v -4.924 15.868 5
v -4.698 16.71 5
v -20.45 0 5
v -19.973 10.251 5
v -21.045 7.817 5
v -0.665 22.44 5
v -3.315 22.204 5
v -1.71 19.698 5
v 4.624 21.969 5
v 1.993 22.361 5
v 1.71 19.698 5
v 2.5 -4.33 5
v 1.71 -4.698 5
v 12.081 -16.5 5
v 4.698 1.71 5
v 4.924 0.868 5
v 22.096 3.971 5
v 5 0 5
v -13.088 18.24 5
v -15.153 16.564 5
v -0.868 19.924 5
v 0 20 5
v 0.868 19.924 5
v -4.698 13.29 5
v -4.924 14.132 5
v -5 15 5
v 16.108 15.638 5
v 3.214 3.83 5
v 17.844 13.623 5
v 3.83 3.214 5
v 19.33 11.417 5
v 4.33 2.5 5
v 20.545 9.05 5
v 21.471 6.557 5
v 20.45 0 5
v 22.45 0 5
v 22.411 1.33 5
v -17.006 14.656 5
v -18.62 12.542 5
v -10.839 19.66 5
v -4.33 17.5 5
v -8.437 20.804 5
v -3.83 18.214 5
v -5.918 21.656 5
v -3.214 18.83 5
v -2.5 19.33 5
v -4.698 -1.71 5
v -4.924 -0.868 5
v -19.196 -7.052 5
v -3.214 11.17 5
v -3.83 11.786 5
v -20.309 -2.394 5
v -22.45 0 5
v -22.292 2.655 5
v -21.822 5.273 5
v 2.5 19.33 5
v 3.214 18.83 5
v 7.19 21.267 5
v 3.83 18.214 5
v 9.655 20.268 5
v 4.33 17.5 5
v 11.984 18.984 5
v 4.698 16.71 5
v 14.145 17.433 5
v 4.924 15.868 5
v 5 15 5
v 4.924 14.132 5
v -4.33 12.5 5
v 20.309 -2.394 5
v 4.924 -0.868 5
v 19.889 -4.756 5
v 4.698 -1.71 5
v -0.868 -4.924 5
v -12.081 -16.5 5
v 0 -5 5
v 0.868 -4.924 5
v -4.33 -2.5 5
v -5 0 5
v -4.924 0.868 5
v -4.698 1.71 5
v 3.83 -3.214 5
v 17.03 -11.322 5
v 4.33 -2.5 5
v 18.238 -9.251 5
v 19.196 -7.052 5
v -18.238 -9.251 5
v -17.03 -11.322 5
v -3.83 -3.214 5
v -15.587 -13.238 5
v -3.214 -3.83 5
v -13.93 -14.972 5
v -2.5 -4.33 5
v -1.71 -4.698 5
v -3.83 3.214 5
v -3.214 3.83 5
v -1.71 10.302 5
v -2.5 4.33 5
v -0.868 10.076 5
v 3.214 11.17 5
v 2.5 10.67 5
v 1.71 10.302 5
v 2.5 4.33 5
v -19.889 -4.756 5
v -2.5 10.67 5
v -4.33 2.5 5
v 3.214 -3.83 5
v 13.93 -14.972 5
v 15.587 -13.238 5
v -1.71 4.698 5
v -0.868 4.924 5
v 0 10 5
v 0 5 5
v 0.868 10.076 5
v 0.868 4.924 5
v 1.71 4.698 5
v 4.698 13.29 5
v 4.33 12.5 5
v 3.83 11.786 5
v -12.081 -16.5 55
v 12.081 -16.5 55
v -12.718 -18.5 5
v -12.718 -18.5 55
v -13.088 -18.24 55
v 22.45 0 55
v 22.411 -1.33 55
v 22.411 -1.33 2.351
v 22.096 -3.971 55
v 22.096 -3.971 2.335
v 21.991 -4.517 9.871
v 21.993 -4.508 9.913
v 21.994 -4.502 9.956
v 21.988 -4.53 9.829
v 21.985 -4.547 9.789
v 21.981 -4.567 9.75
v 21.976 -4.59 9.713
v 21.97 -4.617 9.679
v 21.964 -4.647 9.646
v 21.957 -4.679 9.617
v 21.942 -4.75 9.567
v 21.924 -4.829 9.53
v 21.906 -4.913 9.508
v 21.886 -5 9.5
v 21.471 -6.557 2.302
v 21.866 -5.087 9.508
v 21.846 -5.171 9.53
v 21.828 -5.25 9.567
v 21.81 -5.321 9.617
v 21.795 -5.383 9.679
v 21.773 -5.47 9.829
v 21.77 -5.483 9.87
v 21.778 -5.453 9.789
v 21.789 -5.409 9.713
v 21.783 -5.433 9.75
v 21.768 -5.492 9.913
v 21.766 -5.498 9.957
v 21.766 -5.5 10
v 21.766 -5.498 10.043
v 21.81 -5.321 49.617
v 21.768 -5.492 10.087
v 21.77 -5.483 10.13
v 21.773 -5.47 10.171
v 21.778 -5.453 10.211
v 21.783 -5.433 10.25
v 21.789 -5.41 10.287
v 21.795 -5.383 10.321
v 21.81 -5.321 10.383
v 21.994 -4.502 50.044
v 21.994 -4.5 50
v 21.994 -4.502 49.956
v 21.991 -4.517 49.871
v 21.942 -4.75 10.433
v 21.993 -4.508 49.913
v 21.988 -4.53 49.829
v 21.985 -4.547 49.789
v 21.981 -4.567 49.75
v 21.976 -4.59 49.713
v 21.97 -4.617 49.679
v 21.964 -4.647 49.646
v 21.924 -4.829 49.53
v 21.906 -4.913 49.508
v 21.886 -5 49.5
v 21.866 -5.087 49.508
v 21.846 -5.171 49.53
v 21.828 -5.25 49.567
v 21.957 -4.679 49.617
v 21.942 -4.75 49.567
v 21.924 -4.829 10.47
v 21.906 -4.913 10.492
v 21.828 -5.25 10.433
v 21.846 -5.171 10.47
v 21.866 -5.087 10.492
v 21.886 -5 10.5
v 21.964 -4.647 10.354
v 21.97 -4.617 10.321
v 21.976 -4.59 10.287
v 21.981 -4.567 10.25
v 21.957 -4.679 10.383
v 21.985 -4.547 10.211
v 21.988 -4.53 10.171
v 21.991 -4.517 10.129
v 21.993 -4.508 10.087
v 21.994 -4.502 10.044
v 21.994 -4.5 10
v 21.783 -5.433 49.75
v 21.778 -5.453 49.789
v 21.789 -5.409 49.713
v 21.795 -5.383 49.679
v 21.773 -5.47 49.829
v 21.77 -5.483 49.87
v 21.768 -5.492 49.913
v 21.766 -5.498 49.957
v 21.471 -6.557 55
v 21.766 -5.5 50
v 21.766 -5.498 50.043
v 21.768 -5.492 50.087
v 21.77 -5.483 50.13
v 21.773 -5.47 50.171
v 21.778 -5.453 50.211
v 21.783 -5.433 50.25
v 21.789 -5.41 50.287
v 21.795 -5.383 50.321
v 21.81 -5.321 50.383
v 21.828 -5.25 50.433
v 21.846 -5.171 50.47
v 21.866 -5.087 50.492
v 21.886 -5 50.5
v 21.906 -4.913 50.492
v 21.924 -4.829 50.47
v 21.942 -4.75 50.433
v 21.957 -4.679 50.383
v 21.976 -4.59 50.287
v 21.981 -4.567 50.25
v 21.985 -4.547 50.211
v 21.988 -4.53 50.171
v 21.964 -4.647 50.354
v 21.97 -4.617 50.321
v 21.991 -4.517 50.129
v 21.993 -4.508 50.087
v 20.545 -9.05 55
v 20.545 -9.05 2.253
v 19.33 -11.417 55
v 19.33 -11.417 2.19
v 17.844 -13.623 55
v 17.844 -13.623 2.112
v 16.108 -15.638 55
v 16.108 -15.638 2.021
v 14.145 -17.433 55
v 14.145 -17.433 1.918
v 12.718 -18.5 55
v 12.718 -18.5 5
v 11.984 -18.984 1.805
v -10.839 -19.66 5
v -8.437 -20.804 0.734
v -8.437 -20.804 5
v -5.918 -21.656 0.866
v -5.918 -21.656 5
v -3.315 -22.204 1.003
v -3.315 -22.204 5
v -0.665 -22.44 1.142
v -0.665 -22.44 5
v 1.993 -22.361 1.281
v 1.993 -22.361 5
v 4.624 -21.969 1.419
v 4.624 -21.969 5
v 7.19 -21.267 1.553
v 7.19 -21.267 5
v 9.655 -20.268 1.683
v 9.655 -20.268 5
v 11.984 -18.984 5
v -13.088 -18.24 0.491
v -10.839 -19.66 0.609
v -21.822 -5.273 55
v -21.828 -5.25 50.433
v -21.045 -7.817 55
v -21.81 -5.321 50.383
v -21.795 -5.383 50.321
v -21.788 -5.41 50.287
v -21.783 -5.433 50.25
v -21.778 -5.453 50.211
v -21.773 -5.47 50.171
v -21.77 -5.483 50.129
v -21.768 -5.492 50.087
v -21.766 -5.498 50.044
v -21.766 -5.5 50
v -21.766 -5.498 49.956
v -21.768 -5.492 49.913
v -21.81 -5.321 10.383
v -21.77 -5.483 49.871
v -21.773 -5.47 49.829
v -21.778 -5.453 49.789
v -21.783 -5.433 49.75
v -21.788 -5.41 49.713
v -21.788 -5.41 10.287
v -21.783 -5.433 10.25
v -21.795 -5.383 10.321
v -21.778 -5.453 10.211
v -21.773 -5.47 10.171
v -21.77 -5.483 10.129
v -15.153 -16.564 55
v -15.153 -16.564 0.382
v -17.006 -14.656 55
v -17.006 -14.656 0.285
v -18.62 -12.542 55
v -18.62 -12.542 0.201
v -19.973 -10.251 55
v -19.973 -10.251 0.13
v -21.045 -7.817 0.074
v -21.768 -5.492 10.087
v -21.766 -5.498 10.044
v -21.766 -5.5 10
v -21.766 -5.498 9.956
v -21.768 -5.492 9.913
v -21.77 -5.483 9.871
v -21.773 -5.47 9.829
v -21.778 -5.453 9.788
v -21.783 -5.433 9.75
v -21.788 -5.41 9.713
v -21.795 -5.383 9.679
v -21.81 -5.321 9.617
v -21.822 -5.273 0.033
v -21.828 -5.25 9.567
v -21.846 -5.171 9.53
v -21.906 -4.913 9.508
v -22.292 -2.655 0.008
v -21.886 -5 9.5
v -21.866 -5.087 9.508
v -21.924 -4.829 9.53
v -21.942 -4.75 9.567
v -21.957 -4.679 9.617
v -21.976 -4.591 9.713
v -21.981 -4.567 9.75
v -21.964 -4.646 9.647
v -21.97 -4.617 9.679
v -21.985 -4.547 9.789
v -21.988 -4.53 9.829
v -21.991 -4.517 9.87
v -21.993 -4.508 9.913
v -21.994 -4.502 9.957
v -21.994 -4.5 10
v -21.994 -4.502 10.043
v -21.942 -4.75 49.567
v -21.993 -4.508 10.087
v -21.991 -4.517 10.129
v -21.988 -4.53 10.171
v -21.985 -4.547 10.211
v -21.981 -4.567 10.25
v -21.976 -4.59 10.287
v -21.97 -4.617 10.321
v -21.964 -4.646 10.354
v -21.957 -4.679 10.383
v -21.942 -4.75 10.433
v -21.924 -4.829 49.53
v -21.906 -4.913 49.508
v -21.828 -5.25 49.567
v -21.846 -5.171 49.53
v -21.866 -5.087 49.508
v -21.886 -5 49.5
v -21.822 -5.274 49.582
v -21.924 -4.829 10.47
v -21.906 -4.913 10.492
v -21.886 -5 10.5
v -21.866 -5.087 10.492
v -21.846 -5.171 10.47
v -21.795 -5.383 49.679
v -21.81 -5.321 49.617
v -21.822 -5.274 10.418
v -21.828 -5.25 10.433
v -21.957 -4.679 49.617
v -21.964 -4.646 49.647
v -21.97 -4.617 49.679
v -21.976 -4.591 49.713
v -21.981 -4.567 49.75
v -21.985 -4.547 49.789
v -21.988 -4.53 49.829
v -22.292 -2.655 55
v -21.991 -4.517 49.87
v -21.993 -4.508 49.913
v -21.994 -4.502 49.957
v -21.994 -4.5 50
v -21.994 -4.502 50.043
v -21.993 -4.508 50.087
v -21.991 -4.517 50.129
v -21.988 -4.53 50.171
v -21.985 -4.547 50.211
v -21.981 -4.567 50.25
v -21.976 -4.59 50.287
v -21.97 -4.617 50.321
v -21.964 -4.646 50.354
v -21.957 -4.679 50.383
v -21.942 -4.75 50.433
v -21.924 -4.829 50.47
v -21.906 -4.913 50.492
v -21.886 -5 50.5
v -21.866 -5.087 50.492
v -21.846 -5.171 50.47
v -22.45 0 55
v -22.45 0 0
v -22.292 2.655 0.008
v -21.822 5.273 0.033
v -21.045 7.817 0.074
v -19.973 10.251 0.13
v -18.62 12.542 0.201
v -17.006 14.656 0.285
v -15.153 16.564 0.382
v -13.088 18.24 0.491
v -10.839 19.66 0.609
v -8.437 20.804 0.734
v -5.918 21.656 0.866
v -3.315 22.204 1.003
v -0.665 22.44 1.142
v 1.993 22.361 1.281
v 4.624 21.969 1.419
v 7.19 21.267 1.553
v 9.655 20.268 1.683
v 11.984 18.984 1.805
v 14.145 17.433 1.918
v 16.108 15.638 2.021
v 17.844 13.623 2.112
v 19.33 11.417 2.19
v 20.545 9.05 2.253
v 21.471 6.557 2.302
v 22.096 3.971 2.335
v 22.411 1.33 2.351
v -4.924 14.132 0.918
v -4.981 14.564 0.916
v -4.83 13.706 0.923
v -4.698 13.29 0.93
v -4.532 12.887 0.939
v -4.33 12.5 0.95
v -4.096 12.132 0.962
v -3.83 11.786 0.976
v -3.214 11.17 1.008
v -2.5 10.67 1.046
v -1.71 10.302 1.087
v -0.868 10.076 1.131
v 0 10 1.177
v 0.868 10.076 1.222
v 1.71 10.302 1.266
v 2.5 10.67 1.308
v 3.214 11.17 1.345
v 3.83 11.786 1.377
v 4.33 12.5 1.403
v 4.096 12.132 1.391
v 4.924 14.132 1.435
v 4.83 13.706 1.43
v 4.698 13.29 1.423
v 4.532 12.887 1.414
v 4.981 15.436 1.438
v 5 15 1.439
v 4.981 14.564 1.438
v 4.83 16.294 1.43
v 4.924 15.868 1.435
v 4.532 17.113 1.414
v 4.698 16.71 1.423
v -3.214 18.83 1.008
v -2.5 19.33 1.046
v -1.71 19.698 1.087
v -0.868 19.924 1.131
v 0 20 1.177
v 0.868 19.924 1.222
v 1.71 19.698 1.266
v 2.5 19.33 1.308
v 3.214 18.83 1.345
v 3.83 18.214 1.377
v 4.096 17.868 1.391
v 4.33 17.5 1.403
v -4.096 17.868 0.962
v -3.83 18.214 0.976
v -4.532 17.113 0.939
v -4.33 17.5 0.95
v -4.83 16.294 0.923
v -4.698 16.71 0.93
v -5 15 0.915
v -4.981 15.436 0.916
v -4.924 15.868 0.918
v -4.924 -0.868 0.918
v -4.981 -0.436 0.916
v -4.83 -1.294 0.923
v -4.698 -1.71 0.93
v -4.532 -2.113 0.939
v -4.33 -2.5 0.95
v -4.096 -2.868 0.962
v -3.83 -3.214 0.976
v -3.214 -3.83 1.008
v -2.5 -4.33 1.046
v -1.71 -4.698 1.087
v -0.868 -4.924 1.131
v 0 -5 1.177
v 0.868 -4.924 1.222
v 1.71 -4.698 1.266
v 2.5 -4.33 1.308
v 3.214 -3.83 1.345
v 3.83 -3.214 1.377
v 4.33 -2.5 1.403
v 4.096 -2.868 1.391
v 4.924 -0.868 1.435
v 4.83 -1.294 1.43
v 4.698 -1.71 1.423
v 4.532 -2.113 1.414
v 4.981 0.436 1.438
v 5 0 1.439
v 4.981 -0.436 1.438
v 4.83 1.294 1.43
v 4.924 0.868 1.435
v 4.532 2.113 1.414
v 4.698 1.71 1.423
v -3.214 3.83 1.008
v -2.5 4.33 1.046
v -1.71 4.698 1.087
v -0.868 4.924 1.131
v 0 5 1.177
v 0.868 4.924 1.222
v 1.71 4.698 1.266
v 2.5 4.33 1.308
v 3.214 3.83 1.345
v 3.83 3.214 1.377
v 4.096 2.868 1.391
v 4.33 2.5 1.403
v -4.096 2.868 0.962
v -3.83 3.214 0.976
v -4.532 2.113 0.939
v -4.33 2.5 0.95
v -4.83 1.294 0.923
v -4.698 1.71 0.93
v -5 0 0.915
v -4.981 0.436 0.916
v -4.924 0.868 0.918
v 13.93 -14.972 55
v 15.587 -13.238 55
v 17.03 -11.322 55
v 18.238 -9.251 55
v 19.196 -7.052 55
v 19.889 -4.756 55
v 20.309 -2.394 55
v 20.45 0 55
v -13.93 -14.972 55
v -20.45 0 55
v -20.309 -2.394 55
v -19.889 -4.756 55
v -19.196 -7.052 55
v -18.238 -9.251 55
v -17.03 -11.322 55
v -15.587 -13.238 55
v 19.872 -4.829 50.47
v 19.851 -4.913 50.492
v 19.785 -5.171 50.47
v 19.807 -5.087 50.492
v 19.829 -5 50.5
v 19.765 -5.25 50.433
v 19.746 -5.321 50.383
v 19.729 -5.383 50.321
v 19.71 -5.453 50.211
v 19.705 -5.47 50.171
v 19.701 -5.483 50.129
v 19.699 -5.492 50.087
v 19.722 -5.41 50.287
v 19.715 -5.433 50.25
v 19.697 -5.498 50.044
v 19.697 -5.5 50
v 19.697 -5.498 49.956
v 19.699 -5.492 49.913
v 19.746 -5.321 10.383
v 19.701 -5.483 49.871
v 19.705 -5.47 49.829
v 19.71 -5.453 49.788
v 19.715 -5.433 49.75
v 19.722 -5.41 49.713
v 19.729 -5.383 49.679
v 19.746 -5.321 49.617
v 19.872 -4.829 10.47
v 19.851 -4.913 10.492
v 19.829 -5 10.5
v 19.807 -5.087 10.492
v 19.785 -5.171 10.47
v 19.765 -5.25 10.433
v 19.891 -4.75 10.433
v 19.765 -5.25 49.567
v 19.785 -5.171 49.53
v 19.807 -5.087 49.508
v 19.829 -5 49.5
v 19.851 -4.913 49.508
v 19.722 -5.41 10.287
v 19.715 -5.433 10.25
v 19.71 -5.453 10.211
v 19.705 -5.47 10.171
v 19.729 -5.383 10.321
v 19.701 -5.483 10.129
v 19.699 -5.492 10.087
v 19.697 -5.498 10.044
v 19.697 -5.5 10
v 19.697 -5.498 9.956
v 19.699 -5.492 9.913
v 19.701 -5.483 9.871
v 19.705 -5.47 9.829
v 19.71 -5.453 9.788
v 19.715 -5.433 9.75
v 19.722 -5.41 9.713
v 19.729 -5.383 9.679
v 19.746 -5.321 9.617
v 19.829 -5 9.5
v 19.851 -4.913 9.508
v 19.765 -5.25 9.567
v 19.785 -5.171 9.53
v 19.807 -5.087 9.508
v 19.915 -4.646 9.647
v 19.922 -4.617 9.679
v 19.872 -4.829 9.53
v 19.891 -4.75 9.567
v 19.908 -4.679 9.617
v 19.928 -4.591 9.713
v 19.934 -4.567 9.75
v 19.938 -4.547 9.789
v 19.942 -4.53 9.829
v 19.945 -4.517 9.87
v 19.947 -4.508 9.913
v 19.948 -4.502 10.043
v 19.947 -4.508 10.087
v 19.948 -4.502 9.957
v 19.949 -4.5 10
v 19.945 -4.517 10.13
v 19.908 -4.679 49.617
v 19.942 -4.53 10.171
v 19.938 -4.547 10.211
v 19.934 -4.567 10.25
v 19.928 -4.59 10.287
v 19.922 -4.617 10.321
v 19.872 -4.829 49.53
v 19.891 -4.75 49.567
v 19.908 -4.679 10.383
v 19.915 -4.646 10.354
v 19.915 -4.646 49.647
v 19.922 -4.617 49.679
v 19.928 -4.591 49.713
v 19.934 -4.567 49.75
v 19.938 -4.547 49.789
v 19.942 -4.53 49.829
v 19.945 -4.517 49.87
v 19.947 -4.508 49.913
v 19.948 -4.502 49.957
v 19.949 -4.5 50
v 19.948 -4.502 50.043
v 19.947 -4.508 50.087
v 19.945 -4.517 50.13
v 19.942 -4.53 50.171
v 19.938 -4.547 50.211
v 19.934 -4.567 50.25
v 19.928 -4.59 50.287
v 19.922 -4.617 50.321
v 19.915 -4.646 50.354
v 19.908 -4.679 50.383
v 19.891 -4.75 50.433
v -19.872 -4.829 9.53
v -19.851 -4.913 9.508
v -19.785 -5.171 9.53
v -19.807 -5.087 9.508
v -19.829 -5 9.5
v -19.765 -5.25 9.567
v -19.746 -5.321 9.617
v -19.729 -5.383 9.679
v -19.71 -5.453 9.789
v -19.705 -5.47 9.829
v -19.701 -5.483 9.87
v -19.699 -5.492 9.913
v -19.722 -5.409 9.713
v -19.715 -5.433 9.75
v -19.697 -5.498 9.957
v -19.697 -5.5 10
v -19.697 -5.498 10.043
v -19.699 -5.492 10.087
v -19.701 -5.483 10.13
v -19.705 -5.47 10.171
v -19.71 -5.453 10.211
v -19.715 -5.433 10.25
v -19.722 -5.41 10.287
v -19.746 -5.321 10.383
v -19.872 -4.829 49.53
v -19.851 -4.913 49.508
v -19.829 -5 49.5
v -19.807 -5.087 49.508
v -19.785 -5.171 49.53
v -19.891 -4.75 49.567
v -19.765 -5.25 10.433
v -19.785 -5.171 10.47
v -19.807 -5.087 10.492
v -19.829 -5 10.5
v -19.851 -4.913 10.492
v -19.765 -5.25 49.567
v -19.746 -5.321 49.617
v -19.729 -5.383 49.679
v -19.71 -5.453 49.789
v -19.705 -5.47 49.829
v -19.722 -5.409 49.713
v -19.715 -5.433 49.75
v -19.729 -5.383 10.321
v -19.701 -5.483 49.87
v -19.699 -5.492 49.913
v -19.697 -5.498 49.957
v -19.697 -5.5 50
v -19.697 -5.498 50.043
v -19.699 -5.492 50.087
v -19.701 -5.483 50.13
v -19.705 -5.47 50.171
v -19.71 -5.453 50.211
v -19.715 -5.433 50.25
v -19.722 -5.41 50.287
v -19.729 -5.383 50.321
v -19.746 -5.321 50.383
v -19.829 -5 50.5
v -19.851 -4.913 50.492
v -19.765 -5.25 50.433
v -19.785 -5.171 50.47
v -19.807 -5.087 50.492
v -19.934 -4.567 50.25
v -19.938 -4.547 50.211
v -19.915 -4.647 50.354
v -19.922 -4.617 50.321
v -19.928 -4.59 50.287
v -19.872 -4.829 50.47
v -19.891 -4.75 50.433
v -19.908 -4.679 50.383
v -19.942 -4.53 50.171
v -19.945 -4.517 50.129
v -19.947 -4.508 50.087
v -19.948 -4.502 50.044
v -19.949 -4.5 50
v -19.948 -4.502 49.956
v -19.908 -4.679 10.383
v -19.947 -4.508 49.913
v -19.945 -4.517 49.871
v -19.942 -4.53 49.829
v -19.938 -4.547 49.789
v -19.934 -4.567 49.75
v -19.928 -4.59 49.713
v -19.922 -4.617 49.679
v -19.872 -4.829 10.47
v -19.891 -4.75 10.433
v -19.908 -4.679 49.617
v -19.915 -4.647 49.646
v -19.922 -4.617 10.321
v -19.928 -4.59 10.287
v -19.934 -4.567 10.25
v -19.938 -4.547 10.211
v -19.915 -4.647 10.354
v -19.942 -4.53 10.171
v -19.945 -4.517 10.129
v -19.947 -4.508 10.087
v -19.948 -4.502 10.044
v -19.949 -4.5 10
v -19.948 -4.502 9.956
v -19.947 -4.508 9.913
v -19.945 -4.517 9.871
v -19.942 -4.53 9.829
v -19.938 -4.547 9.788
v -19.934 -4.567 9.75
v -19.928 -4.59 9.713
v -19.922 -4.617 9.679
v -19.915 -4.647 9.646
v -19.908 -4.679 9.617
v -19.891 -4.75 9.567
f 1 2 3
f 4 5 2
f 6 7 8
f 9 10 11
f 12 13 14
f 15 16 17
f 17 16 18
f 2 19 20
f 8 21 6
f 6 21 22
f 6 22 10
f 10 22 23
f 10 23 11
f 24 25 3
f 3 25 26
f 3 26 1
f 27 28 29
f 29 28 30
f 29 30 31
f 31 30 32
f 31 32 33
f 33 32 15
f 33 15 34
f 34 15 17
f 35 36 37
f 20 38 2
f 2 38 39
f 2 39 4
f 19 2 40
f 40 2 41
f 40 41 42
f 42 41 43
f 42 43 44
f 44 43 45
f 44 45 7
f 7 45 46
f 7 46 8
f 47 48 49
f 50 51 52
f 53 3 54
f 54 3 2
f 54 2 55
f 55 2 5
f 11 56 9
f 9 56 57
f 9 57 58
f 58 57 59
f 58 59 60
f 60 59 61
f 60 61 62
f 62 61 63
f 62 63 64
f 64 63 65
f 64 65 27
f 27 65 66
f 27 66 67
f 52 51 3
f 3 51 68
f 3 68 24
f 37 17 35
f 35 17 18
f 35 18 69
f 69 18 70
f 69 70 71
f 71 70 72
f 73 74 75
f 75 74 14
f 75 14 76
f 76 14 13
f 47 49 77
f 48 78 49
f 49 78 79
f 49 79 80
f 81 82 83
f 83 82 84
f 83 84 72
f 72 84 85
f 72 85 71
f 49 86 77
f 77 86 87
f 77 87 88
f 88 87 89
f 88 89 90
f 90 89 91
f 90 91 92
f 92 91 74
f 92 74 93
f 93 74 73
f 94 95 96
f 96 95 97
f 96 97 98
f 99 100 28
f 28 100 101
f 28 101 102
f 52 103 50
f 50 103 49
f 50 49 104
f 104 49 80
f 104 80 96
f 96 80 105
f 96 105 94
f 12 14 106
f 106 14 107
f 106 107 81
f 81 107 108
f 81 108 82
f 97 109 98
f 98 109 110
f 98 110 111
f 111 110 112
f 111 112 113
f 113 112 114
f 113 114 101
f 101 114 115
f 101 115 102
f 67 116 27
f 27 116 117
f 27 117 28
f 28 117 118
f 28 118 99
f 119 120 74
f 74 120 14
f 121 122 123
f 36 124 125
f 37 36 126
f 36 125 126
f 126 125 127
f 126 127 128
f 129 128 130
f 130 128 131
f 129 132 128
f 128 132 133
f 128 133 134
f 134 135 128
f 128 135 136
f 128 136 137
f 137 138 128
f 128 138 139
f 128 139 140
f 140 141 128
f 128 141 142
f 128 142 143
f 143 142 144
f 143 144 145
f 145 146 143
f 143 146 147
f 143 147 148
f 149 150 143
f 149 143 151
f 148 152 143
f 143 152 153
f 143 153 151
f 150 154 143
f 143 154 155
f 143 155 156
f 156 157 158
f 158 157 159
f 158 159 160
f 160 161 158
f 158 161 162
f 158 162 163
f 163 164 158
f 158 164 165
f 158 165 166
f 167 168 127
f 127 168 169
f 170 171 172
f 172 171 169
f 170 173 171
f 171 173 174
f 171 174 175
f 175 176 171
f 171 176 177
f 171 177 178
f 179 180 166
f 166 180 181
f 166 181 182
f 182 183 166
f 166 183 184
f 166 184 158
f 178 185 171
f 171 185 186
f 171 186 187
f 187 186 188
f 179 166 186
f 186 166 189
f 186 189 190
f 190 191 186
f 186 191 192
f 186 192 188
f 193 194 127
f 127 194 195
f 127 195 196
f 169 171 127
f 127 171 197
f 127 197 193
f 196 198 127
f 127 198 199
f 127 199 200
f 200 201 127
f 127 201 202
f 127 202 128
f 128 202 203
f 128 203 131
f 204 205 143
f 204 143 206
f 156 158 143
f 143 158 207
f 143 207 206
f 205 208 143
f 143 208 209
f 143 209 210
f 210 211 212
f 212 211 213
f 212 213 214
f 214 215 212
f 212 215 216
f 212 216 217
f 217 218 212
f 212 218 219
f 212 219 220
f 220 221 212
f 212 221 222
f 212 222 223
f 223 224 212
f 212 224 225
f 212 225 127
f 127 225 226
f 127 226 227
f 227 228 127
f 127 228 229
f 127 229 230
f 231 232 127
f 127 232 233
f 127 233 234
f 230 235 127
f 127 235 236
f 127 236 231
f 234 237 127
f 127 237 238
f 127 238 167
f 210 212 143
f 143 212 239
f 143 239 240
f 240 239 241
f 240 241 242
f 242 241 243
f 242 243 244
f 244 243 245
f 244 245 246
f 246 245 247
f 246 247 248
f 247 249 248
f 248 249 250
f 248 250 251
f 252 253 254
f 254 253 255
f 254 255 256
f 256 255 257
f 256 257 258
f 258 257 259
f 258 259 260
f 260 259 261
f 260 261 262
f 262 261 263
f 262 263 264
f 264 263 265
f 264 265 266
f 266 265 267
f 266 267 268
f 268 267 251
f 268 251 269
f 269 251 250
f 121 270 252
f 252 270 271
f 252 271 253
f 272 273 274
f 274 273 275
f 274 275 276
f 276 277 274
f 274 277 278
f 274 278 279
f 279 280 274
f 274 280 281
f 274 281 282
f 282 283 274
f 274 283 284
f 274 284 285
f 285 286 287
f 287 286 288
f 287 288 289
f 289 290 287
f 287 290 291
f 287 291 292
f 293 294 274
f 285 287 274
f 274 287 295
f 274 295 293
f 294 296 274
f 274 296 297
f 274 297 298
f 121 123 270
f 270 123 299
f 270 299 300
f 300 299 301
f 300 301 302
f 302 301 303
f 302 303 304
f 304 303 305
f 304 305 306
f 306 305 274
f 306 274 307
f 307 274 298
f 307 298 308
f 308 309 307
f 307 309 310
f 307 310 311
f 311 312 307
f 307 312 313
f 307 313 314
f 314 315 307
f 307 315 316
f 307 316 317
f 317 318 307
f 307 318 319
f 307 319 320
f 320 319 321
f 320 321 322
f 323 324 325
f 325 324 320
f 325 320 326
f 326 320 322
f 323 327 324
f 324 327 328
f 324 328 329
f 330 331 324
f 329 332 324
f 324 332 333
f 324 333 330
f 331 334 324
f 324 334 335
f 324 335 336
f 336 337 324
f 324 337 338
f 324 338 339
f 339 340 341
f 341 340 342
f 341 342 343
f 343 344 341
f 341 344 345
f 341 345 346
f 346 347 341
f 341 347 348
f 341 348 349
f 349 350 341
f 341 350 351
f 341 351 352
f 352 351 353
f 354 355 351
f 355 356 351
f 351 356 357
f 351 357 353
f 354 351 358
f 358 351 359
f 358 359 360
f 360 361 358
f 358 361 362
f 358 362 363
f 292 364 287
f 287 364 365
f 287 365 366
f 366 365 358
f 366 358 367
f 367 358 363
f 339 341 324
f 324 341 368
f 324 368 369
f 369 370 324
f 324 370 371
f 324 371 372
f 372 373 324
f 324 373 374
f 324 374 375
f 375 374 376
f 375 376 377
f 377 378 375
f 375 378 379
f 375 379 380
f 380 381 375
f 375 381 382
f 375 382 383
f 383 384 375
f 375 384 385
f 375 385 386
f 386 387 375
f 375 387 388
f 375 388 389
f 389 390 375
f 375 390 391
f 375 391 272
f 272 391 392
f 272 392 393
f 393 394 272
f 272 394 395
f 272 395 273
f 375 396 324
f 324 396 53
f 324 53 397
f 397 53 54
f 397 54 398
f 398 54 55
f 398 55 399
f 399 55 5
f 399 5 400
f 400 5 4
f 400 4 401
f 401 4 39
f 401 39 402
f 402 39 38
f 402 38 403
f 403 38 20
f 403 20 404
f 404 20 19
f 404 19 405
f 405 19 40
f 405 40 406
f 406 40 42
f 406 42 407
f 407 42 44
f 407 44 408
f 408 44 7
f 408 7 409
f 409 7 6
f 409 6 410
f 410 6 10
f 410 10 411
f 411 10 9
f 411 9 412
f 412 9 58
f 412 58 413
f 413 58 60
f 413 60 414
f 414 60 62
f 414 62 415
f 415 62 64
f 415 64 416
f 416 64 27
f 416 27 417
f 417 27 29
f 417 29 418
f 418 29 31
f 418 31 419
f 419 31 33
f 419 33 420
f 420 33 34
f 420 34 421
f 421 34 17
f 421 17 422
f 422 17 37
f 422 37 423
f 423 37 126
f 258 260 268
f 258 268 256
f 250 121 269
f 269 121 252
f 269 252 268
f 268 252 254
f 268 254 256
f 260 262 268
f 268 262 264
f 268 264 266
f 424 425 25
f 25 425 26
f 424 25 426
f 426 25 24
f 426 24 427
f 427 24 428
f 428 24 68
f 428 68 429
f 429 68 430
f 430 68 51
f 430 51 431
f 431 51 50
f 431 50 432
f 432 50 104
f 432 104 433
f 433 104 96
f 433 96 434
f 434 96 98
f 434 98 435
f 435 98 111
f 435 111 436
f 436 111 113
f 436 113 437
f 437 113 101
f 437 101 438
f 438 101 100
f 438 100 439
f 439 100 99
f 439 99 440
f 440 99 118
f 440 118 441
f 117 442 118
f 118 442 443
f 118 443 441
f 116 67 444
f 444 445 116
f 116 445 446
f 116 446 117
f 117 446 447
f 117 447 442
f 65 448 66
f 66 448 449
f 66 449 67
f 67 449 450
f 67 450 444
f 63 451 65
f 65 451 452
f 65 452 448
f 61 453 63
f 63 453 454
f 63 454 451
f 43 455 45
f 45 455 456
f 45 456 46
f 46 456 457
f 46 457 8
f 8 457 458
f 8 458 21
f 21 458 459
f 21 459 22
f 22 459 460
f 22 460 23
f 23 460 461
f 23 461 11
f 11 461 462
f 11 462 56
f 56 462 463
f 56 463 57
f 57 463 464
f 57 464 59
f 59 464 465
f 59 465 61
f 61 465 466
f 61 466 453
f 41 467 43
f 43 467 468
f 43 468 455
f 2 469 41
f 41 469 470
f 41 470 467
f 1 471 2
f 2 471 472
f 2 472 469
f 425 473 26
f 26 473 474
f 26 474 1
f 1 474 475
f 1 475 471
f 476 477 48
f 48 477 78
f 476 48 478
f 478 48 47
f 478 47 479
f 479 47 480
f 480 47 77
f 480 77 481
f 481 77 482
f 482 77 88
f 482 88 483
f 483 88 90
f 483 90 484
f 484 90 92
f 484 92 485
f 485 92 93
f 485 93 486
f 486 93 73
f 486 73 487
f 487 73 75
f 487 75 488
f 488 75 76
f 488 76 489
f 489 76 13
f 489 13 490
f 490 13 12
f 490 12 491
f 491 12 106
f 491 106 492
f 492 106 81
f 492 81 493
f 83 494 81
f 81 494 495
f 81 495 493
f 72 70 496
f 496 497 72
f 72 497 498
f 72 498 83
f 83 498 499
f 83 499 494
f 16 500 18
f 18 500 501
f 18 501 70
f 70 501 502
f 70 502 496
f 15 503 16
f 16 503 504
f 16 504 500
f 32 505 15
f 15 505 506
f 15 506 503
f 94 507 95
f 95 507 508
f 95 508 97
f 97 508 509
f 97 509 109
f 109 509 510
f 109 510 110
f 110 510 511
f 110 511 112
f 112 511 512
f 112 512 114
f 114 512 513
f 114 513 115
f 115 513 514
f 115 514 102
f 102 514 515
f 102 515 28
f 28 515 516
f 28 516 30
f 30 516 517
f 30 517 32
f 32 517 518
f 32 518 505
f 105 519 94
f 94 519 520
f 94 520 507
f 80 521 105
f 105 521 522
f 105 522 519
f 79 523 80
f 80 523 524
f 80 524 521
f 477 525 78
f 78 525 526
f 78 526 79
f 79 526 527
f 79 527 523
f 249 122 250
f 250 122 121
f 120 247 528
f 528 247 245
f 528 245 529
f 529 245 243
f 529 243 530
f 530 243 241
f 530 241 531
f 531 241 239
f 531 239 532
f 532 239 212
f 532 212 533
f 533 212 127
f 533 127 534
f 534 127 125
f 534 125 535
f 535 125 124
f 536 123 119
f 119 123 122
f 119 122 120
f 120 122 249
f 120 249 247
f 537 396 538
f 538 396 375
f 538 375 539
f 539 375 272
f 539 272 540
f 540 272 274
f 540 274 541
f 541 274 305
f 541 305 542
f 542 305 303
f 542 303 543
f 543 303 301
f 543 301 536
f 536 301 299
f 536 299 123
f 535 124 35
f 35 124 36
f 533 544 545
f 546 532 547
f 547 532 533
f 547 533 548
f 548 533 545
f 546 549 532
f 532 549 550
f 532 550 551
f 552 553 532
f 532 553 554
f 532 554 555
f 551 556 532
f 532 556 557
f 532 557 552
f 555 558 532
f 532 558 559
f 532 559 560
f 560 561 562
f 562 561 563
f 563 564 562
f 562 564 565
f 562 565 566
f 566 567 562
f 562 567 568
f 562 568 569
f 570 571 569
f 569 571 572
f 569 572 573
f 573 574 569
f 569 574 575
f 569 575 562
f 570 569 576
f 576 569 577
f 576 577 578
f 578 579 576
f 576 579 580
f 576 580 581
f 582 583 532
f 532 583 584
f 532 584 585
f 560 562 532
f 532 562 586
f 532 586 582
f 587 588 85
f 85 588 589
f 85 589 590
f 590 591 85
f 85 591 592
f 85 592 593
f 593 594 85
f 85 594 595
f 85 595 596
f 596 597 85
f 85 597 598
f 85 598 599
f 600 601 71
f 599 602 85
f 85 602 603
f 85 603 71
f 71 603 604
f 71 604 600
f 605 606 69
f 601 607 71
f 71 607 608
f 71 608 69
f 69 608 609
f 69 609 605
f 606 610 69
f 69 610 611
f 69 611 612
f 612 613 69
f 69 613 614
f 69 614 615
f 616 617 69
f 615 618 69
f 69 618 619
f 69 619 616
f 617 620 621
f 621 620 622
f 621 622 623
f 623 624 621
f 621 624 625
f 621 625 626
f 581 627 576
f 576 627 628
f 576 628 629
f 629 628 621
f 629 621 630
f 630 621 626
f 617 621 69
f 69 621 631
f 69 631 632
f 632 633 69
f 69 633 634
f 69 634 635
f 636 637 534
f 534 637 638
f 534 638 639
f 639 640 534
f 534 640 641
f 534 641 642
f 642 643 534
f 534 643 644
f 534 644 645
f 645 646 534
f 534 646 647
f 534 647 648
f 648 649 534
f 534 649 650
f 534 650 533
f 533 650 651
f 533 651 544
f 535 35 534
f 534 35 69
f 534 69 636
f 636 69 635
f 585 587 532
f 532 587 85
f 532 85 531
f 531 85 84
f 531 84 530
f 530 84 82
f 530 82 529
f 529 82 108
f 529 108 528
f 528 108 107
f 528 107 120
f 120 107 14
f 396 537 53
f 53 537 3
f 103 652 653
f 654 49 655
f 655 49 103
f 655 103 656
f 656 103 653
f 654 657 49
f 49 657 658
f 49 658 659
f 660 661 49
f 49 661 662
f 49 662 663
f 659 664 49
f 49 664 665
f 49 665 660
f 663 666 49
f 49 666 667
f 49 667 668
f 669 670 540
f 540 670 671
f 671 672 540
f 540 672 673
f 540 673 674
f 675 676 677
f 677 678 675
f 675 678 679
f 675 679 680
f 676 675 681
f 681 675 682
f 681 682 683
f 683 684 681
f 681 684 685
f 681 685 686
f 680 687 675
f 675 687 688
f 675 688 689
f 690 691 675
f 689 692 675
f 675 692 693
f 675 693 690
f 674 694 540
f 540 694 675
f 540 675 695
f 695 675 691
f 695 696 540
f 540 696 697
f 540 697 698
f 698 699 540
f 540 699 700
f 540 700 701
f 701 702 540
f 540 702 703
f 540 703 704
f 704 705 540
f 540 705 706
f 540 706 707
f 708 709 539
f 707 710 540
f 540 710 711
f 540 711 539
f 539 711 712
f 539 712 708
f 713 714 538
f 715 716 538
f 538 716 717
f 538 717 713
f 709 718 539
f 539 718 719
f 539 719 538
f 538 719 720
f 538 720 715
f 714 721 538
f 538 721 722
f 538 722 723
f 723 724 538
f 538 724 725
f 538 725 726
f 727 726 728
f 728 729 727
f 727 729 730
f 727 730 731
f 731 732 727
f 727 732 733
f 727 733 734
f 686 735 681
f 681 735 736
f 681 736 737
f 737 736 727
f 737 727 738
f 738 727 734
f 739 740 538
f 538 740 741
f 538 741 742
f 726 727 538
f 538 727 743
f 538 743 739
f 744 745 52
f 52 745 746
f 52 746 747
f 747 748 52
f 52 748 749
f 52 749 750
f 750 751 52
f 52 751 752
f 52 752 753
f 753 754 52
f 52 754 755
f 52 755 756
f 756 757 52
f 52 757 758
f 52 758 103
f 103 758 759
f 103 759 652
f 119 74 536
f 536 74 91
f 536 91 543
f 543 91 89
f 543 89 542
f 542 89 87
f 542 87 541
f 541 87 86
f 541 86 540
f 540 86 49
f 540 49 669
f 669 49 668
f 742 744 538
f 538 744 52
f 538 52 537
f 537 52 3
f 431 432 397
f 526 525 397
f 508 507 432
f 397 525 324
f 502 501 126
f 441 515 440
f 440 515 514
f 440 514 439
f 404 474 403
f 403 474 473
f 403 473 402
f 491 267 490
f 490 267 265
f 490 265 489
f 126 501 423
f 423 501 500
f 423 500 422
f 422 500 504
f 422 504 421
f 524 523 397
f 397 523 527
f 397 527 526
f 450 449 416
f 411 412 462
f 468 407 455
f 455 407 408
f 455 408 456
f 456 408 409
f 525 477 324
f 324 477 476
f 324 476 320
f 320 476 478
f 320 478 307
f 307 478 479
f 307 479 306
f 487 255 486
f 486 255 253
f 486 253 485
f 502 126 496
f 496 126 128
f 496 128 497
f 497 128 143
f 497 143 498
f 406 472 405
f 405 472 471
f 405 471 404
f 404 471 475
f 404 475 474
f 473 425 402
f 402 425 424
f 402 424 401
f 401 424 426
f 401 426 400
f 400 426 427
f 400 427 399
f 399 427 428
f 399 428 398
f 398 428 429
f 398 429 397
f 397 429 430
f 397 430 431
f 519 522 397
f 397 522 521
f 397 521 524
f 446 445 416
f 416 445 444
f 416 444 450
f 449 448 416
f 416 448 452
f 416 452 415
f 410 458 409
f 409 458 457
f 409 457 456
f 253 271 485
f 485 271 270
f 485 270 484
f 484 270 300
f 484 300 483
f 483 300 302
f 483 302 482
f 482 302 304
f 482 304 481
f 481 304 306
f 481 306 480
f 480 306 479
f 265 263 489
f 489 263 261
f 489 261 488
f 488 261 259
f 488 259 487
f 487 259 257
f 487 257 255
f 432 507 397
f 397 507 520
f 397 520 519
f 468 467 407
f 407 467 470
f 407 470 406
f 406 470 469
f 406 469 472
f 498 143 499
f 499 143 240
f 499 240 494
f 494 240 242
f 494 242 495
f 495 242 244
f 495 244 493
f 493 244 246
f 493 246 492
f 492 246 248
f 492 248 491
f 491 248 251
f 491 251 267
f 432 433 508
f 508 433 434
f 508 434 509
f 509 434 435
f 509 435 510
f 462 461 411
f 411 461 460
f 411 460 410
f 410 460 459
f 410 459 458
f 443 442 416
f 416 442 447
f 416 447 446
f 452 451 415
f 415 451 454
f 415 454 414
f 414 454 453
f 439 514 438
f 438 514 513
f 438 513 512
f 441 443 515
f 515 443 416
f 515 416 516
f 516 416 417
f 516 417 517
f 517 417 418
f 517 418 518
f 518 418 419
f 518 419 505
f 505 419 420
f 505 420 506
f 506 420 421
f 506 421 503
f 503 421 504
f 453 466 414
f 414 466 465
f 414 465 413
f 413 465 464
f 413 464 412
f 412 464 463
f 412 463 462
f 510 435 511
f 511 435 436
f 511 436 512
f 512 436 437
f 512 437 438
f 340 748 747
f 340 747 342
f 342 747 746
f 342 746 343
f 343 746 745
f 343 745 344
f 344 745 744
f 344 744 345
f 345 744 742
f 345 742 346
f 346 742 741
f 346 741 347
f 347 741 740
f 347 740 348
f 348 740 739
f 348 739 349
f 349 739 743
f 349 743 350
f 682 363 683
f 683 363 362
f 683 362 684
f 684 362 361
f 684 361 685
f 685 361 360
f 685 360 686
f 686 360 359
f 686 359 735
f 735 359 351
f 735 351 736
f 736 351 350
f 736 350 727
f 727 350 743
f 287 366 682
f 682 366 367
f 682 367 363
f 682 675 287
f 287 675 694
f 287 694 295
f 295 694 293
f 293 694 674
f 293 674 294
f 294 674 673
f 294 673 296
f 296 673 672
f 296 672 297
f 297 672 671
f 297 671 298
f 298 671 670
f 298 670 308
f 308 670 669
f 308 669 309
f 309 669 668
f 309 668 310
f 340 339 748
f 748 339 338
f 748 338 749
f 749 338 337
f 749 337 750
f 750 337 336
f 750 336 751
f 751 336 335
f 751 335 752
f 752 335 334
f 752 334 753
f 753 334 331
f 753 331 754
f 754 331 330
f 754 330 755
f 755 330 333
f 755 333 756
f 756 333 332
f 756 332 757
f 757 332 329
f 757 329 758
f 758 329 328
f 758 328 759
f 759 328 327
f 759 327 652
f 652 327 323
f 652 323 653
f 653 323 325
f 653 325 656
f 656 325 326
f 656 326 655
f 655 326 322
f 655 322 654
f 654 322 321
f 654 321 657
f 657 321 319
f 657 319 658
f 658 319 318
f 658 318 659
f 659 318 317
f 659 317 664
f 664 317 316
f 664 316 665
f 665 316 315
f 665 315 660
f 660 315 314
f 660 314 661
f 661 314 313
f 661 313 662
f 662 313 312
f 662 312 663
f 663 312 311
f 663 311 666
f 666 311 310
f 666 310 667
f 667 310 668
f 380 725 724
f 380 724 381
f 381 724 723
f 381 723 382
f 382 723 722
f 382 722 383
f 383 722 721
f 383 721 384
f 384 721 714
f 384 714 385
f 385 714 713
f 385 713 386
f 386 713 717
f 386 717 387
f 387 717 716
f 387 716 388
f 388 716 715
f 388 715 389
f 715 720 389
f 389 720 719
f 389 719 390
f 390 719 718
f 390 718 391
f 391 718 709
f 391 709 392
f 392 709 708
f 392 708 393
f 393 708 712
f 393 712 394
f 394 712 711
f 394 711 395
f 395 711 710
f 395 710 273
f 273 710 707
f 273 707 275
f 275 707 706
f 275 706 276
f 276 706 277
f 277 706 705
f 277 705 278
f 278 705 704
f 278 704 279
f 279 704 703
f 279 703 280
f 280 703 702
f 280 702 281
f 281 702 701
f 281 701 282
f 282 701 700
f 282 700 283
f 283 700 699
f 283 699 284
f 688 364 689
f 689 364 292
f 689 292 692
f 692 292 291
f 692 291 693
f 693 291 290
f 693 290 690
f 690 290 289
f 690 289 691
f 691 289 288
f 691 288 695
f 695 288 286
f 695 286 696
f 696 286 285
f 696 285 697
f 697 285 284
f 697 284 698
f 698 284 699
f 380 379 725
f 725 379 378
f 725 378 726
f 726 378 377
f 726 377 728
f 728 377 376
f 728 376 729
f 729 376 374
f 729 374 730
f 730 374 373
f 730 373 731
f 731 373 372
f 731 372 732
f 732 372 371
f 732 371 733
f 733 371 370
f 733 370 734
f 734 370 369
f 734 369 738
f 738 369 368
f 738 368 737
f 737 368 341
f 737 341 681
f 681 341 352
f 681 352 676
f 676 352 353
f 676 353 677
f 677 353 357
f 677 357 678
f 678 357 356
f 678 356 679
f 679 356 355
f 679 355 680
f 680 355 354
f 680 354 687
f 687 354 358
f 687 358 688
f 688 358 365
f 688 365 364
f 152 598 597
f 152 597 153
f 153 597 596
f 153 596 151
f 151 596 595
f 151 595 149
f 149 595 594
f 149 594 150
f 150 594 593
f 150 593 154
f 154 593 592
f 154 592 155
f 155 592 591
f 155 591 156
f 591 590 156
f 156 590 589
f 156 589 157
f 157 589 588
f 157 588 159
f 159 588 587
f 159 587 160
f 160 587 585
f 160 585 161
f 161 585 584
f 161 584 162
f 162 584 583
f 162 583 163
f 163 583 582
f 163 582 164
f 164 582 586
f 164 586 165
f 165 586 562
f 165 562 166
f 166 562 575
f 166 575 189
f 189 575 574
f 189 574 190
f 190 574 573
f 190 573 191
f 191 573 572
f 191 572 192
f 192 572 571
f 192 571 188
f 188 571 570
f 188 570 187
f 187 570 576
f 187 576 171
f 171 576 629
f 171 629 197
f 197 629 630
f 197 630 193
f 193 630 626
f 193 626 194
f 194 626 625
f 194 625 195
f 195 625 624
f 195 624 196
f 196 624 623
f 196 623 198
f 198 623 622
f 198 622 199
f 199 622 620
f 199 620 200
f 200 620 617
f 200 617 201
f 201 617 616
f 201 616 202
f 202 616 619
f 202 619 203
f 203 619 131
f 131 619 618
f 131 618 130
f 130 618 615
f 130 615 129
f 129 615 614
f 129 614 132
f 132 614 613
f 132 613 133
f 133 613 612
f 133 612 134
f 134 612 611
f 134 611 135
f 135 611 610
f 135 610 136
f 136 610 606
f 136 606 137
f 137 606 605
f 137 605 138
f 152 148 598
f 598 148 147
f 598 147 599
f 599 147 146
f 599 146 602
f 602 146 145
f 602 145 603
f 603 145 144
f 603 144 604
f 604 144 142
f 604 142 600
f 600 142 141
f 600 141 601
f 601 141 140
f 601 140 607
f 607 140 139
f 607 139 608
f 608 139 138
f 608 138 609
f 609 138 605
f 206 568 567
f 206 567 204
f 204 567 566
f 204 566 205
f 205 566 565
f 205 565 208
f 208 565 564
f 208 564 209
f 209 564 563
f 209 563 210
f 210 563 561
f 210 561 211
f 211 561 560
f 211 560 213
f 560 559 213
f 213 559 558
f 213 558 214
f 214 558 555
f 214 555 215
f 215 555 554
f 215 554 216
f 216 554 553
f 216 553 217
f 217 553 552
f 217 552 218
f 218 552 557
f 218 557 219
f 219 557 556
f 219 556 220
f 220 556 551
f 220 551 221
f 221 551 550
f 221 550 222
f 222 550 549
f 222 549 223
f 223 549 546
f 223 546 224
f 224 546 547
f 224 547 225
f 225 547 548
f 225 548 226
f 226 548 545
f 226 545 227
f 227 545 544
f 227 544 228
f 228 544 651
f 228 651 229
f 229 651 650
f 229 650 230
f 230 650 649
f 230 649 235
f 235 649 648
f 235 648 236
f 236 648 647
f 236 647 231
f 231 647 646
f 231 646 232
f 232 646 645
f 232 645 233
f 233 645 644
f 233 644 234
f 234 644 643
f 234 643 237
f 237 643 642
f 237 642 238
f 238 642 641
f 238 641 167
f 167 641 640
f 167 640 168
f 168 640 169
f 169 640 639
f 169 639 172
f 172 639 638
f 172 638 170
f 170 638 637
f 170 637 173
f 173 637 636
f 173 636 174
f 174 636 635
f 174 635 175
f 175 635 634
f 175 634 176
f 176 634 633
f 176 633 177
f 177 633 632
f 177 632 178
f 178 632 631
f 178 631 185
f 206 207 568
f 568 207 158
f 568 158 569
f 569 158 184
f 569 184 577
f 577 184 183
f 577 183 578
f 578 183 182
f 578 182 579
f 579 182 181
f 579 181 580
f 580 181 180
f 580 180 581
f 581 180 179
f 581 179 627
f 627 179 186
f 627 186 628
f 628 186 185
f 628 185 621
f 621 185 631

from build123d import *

# Parameters (mm, degrees)
SKETCH1_R               = 22.45
BOSS_EXTRUDE1_DEPTH     = 5
SKETCH2_R               = 5
CUT_EXTRUDE1_DEPTH      = 5
BOSS_EXTRUDE2_DEPTH     = 50
BOSS_EXTRUDE5_DEPTH     = 50
CUT_EXTRUDE3_DEPTH      = 64.505944604
CUT_EXTRUDE3_DEPTH_BACK = 64.505944604
CUT_EXTRUDE4_DEPTH      = 64.505944604
CUT_EXTRUDE4_DEPTH_BACK = 64.505944604
SKETCH7_R               = 0.5


with BuildPart() as part:
    # Sketch1 → Boss-Extrude1 (new body)
    with BuildSketch(Plane.XY):
        Circle(SKETCH1_R)
    extrude(amount=BOSS_EXTRUDE1_DEPTH)

    # Sketch2 → Cut-Extrude1 (cut)
    with BuildSketch(Plane(origin=(0, 0, 0), x_dir=(-1, 0, 0), z_dir=(0, 0, -1))):
        Circle(SKETCH2_R)
        with Locations((0, 15)):
            Circle(SKETCH2_R)
    extrude(amount=-CUT_EXTRUDE1_DEPTH, mode=Mode.SUBTRACT)

    # Sketch3 → Boss-Extrude2 (add)
    with BuildSketch(Plane.XY.offset(5)):
        with BuildLine():
            Line((-12.718195627, -18.5), (12.718195627, -18.5))
            ThreePointArc((12.718195627, -18.5), (14.006550731, -17.544772344), (15.223419458, -16.5))
            Line((15.223419458, -16.5), (-15.223419458, -16.5))
            ThreePointArc((-15.223419458, -16.5), (-14.006550731, -17.544772344), (-12.718195627, -18.5))
        make_face()
    extrude(amount=BOSS_EXTRUDE2_DEPTH)

    # Sketch5 → Boss-Extrude5 (add)
    with BuildSketch(Plane.XY.offset(5)):
        with BuildLine():
            Line((-15.223419458, -16.5), (-12.08108025, -16.5))
            ThreePointArc((-12.08108025, -16.5), (-12.994947259, -15.790308602), (-13.867212825, -15.030066815))
            ThreePointArc((-13.867212825, -15.030066815), (-18.732151535, -8.204206169), (-20.45, 0))
            Line((-20.45, 0), (-22.45, 0))
            ThreePointArc((-22.45, 0), (-20.564146795, -9.006573521), (-15.223419458, -16.5))
        make_face()
        with BuildLine():
            Line((20.45, 0), (22.45, 0))
            ThreePointArc((22.45, 0), (20.564146795, -9.006573521), (15.223419458, -16.5))
            Line((15.223419458, -16.5), (12.08108025, -16.5))
            ThreePointArc((12.08108025, -16.5), (12.994947259, -15.790308602), (13.867212825, -15.030066815))
            ThreePointArc((13.867212825, -15.030066815), (18.732151535, -8.204206169), (20.45, 0))
        make_face()
    extrude(amount=BOSS_EXTRUDE5_DEPTH)

    # Sketch6 → Cut-Extrude3 (cut, two sides: drawn at the far end of the back side and taken through both)
    with BuildSketch(Plane(origin=(0, 0, 0), x_dir=(1, 0, 0), z_dir=(0, 1, 0)).offset(-CUT_EXTRUDE3_DEPTH_BACK)):
        Polygon((-22.45, 0), (22.45, 0), (22.45, -2.35310929), align=None)
    extrude(amount=CUT_EXTRUDE3_DEPTH + CUT_EXTRUDE3_DEPTH_BACK, mode=Mode.SUBTRACT)

    # Sketch7 → Cut-Extrude4 (cut, two sides: drawn at the far end of the back side and taken through both)
    with BuildSketch(Plane(origin=(0, 0, 0), x_dir=(0, 0, -1), z_dir=(1, 0, 0)).offset(-CUT_EXTRUDE4_DEPTH_BACK)):
        with Locations((-50, -5)):
            Circle(SKETCH7_R)
        with Locations((-10, -5)):
            Circle(SKETCH7_R)
    extrude(amount=CUT_EXTRUDE4_DEPTH + CUT_EXTRUDE4_DEPTH_BACK, mode=Mode.SUBTRACT)


solid = part.part
